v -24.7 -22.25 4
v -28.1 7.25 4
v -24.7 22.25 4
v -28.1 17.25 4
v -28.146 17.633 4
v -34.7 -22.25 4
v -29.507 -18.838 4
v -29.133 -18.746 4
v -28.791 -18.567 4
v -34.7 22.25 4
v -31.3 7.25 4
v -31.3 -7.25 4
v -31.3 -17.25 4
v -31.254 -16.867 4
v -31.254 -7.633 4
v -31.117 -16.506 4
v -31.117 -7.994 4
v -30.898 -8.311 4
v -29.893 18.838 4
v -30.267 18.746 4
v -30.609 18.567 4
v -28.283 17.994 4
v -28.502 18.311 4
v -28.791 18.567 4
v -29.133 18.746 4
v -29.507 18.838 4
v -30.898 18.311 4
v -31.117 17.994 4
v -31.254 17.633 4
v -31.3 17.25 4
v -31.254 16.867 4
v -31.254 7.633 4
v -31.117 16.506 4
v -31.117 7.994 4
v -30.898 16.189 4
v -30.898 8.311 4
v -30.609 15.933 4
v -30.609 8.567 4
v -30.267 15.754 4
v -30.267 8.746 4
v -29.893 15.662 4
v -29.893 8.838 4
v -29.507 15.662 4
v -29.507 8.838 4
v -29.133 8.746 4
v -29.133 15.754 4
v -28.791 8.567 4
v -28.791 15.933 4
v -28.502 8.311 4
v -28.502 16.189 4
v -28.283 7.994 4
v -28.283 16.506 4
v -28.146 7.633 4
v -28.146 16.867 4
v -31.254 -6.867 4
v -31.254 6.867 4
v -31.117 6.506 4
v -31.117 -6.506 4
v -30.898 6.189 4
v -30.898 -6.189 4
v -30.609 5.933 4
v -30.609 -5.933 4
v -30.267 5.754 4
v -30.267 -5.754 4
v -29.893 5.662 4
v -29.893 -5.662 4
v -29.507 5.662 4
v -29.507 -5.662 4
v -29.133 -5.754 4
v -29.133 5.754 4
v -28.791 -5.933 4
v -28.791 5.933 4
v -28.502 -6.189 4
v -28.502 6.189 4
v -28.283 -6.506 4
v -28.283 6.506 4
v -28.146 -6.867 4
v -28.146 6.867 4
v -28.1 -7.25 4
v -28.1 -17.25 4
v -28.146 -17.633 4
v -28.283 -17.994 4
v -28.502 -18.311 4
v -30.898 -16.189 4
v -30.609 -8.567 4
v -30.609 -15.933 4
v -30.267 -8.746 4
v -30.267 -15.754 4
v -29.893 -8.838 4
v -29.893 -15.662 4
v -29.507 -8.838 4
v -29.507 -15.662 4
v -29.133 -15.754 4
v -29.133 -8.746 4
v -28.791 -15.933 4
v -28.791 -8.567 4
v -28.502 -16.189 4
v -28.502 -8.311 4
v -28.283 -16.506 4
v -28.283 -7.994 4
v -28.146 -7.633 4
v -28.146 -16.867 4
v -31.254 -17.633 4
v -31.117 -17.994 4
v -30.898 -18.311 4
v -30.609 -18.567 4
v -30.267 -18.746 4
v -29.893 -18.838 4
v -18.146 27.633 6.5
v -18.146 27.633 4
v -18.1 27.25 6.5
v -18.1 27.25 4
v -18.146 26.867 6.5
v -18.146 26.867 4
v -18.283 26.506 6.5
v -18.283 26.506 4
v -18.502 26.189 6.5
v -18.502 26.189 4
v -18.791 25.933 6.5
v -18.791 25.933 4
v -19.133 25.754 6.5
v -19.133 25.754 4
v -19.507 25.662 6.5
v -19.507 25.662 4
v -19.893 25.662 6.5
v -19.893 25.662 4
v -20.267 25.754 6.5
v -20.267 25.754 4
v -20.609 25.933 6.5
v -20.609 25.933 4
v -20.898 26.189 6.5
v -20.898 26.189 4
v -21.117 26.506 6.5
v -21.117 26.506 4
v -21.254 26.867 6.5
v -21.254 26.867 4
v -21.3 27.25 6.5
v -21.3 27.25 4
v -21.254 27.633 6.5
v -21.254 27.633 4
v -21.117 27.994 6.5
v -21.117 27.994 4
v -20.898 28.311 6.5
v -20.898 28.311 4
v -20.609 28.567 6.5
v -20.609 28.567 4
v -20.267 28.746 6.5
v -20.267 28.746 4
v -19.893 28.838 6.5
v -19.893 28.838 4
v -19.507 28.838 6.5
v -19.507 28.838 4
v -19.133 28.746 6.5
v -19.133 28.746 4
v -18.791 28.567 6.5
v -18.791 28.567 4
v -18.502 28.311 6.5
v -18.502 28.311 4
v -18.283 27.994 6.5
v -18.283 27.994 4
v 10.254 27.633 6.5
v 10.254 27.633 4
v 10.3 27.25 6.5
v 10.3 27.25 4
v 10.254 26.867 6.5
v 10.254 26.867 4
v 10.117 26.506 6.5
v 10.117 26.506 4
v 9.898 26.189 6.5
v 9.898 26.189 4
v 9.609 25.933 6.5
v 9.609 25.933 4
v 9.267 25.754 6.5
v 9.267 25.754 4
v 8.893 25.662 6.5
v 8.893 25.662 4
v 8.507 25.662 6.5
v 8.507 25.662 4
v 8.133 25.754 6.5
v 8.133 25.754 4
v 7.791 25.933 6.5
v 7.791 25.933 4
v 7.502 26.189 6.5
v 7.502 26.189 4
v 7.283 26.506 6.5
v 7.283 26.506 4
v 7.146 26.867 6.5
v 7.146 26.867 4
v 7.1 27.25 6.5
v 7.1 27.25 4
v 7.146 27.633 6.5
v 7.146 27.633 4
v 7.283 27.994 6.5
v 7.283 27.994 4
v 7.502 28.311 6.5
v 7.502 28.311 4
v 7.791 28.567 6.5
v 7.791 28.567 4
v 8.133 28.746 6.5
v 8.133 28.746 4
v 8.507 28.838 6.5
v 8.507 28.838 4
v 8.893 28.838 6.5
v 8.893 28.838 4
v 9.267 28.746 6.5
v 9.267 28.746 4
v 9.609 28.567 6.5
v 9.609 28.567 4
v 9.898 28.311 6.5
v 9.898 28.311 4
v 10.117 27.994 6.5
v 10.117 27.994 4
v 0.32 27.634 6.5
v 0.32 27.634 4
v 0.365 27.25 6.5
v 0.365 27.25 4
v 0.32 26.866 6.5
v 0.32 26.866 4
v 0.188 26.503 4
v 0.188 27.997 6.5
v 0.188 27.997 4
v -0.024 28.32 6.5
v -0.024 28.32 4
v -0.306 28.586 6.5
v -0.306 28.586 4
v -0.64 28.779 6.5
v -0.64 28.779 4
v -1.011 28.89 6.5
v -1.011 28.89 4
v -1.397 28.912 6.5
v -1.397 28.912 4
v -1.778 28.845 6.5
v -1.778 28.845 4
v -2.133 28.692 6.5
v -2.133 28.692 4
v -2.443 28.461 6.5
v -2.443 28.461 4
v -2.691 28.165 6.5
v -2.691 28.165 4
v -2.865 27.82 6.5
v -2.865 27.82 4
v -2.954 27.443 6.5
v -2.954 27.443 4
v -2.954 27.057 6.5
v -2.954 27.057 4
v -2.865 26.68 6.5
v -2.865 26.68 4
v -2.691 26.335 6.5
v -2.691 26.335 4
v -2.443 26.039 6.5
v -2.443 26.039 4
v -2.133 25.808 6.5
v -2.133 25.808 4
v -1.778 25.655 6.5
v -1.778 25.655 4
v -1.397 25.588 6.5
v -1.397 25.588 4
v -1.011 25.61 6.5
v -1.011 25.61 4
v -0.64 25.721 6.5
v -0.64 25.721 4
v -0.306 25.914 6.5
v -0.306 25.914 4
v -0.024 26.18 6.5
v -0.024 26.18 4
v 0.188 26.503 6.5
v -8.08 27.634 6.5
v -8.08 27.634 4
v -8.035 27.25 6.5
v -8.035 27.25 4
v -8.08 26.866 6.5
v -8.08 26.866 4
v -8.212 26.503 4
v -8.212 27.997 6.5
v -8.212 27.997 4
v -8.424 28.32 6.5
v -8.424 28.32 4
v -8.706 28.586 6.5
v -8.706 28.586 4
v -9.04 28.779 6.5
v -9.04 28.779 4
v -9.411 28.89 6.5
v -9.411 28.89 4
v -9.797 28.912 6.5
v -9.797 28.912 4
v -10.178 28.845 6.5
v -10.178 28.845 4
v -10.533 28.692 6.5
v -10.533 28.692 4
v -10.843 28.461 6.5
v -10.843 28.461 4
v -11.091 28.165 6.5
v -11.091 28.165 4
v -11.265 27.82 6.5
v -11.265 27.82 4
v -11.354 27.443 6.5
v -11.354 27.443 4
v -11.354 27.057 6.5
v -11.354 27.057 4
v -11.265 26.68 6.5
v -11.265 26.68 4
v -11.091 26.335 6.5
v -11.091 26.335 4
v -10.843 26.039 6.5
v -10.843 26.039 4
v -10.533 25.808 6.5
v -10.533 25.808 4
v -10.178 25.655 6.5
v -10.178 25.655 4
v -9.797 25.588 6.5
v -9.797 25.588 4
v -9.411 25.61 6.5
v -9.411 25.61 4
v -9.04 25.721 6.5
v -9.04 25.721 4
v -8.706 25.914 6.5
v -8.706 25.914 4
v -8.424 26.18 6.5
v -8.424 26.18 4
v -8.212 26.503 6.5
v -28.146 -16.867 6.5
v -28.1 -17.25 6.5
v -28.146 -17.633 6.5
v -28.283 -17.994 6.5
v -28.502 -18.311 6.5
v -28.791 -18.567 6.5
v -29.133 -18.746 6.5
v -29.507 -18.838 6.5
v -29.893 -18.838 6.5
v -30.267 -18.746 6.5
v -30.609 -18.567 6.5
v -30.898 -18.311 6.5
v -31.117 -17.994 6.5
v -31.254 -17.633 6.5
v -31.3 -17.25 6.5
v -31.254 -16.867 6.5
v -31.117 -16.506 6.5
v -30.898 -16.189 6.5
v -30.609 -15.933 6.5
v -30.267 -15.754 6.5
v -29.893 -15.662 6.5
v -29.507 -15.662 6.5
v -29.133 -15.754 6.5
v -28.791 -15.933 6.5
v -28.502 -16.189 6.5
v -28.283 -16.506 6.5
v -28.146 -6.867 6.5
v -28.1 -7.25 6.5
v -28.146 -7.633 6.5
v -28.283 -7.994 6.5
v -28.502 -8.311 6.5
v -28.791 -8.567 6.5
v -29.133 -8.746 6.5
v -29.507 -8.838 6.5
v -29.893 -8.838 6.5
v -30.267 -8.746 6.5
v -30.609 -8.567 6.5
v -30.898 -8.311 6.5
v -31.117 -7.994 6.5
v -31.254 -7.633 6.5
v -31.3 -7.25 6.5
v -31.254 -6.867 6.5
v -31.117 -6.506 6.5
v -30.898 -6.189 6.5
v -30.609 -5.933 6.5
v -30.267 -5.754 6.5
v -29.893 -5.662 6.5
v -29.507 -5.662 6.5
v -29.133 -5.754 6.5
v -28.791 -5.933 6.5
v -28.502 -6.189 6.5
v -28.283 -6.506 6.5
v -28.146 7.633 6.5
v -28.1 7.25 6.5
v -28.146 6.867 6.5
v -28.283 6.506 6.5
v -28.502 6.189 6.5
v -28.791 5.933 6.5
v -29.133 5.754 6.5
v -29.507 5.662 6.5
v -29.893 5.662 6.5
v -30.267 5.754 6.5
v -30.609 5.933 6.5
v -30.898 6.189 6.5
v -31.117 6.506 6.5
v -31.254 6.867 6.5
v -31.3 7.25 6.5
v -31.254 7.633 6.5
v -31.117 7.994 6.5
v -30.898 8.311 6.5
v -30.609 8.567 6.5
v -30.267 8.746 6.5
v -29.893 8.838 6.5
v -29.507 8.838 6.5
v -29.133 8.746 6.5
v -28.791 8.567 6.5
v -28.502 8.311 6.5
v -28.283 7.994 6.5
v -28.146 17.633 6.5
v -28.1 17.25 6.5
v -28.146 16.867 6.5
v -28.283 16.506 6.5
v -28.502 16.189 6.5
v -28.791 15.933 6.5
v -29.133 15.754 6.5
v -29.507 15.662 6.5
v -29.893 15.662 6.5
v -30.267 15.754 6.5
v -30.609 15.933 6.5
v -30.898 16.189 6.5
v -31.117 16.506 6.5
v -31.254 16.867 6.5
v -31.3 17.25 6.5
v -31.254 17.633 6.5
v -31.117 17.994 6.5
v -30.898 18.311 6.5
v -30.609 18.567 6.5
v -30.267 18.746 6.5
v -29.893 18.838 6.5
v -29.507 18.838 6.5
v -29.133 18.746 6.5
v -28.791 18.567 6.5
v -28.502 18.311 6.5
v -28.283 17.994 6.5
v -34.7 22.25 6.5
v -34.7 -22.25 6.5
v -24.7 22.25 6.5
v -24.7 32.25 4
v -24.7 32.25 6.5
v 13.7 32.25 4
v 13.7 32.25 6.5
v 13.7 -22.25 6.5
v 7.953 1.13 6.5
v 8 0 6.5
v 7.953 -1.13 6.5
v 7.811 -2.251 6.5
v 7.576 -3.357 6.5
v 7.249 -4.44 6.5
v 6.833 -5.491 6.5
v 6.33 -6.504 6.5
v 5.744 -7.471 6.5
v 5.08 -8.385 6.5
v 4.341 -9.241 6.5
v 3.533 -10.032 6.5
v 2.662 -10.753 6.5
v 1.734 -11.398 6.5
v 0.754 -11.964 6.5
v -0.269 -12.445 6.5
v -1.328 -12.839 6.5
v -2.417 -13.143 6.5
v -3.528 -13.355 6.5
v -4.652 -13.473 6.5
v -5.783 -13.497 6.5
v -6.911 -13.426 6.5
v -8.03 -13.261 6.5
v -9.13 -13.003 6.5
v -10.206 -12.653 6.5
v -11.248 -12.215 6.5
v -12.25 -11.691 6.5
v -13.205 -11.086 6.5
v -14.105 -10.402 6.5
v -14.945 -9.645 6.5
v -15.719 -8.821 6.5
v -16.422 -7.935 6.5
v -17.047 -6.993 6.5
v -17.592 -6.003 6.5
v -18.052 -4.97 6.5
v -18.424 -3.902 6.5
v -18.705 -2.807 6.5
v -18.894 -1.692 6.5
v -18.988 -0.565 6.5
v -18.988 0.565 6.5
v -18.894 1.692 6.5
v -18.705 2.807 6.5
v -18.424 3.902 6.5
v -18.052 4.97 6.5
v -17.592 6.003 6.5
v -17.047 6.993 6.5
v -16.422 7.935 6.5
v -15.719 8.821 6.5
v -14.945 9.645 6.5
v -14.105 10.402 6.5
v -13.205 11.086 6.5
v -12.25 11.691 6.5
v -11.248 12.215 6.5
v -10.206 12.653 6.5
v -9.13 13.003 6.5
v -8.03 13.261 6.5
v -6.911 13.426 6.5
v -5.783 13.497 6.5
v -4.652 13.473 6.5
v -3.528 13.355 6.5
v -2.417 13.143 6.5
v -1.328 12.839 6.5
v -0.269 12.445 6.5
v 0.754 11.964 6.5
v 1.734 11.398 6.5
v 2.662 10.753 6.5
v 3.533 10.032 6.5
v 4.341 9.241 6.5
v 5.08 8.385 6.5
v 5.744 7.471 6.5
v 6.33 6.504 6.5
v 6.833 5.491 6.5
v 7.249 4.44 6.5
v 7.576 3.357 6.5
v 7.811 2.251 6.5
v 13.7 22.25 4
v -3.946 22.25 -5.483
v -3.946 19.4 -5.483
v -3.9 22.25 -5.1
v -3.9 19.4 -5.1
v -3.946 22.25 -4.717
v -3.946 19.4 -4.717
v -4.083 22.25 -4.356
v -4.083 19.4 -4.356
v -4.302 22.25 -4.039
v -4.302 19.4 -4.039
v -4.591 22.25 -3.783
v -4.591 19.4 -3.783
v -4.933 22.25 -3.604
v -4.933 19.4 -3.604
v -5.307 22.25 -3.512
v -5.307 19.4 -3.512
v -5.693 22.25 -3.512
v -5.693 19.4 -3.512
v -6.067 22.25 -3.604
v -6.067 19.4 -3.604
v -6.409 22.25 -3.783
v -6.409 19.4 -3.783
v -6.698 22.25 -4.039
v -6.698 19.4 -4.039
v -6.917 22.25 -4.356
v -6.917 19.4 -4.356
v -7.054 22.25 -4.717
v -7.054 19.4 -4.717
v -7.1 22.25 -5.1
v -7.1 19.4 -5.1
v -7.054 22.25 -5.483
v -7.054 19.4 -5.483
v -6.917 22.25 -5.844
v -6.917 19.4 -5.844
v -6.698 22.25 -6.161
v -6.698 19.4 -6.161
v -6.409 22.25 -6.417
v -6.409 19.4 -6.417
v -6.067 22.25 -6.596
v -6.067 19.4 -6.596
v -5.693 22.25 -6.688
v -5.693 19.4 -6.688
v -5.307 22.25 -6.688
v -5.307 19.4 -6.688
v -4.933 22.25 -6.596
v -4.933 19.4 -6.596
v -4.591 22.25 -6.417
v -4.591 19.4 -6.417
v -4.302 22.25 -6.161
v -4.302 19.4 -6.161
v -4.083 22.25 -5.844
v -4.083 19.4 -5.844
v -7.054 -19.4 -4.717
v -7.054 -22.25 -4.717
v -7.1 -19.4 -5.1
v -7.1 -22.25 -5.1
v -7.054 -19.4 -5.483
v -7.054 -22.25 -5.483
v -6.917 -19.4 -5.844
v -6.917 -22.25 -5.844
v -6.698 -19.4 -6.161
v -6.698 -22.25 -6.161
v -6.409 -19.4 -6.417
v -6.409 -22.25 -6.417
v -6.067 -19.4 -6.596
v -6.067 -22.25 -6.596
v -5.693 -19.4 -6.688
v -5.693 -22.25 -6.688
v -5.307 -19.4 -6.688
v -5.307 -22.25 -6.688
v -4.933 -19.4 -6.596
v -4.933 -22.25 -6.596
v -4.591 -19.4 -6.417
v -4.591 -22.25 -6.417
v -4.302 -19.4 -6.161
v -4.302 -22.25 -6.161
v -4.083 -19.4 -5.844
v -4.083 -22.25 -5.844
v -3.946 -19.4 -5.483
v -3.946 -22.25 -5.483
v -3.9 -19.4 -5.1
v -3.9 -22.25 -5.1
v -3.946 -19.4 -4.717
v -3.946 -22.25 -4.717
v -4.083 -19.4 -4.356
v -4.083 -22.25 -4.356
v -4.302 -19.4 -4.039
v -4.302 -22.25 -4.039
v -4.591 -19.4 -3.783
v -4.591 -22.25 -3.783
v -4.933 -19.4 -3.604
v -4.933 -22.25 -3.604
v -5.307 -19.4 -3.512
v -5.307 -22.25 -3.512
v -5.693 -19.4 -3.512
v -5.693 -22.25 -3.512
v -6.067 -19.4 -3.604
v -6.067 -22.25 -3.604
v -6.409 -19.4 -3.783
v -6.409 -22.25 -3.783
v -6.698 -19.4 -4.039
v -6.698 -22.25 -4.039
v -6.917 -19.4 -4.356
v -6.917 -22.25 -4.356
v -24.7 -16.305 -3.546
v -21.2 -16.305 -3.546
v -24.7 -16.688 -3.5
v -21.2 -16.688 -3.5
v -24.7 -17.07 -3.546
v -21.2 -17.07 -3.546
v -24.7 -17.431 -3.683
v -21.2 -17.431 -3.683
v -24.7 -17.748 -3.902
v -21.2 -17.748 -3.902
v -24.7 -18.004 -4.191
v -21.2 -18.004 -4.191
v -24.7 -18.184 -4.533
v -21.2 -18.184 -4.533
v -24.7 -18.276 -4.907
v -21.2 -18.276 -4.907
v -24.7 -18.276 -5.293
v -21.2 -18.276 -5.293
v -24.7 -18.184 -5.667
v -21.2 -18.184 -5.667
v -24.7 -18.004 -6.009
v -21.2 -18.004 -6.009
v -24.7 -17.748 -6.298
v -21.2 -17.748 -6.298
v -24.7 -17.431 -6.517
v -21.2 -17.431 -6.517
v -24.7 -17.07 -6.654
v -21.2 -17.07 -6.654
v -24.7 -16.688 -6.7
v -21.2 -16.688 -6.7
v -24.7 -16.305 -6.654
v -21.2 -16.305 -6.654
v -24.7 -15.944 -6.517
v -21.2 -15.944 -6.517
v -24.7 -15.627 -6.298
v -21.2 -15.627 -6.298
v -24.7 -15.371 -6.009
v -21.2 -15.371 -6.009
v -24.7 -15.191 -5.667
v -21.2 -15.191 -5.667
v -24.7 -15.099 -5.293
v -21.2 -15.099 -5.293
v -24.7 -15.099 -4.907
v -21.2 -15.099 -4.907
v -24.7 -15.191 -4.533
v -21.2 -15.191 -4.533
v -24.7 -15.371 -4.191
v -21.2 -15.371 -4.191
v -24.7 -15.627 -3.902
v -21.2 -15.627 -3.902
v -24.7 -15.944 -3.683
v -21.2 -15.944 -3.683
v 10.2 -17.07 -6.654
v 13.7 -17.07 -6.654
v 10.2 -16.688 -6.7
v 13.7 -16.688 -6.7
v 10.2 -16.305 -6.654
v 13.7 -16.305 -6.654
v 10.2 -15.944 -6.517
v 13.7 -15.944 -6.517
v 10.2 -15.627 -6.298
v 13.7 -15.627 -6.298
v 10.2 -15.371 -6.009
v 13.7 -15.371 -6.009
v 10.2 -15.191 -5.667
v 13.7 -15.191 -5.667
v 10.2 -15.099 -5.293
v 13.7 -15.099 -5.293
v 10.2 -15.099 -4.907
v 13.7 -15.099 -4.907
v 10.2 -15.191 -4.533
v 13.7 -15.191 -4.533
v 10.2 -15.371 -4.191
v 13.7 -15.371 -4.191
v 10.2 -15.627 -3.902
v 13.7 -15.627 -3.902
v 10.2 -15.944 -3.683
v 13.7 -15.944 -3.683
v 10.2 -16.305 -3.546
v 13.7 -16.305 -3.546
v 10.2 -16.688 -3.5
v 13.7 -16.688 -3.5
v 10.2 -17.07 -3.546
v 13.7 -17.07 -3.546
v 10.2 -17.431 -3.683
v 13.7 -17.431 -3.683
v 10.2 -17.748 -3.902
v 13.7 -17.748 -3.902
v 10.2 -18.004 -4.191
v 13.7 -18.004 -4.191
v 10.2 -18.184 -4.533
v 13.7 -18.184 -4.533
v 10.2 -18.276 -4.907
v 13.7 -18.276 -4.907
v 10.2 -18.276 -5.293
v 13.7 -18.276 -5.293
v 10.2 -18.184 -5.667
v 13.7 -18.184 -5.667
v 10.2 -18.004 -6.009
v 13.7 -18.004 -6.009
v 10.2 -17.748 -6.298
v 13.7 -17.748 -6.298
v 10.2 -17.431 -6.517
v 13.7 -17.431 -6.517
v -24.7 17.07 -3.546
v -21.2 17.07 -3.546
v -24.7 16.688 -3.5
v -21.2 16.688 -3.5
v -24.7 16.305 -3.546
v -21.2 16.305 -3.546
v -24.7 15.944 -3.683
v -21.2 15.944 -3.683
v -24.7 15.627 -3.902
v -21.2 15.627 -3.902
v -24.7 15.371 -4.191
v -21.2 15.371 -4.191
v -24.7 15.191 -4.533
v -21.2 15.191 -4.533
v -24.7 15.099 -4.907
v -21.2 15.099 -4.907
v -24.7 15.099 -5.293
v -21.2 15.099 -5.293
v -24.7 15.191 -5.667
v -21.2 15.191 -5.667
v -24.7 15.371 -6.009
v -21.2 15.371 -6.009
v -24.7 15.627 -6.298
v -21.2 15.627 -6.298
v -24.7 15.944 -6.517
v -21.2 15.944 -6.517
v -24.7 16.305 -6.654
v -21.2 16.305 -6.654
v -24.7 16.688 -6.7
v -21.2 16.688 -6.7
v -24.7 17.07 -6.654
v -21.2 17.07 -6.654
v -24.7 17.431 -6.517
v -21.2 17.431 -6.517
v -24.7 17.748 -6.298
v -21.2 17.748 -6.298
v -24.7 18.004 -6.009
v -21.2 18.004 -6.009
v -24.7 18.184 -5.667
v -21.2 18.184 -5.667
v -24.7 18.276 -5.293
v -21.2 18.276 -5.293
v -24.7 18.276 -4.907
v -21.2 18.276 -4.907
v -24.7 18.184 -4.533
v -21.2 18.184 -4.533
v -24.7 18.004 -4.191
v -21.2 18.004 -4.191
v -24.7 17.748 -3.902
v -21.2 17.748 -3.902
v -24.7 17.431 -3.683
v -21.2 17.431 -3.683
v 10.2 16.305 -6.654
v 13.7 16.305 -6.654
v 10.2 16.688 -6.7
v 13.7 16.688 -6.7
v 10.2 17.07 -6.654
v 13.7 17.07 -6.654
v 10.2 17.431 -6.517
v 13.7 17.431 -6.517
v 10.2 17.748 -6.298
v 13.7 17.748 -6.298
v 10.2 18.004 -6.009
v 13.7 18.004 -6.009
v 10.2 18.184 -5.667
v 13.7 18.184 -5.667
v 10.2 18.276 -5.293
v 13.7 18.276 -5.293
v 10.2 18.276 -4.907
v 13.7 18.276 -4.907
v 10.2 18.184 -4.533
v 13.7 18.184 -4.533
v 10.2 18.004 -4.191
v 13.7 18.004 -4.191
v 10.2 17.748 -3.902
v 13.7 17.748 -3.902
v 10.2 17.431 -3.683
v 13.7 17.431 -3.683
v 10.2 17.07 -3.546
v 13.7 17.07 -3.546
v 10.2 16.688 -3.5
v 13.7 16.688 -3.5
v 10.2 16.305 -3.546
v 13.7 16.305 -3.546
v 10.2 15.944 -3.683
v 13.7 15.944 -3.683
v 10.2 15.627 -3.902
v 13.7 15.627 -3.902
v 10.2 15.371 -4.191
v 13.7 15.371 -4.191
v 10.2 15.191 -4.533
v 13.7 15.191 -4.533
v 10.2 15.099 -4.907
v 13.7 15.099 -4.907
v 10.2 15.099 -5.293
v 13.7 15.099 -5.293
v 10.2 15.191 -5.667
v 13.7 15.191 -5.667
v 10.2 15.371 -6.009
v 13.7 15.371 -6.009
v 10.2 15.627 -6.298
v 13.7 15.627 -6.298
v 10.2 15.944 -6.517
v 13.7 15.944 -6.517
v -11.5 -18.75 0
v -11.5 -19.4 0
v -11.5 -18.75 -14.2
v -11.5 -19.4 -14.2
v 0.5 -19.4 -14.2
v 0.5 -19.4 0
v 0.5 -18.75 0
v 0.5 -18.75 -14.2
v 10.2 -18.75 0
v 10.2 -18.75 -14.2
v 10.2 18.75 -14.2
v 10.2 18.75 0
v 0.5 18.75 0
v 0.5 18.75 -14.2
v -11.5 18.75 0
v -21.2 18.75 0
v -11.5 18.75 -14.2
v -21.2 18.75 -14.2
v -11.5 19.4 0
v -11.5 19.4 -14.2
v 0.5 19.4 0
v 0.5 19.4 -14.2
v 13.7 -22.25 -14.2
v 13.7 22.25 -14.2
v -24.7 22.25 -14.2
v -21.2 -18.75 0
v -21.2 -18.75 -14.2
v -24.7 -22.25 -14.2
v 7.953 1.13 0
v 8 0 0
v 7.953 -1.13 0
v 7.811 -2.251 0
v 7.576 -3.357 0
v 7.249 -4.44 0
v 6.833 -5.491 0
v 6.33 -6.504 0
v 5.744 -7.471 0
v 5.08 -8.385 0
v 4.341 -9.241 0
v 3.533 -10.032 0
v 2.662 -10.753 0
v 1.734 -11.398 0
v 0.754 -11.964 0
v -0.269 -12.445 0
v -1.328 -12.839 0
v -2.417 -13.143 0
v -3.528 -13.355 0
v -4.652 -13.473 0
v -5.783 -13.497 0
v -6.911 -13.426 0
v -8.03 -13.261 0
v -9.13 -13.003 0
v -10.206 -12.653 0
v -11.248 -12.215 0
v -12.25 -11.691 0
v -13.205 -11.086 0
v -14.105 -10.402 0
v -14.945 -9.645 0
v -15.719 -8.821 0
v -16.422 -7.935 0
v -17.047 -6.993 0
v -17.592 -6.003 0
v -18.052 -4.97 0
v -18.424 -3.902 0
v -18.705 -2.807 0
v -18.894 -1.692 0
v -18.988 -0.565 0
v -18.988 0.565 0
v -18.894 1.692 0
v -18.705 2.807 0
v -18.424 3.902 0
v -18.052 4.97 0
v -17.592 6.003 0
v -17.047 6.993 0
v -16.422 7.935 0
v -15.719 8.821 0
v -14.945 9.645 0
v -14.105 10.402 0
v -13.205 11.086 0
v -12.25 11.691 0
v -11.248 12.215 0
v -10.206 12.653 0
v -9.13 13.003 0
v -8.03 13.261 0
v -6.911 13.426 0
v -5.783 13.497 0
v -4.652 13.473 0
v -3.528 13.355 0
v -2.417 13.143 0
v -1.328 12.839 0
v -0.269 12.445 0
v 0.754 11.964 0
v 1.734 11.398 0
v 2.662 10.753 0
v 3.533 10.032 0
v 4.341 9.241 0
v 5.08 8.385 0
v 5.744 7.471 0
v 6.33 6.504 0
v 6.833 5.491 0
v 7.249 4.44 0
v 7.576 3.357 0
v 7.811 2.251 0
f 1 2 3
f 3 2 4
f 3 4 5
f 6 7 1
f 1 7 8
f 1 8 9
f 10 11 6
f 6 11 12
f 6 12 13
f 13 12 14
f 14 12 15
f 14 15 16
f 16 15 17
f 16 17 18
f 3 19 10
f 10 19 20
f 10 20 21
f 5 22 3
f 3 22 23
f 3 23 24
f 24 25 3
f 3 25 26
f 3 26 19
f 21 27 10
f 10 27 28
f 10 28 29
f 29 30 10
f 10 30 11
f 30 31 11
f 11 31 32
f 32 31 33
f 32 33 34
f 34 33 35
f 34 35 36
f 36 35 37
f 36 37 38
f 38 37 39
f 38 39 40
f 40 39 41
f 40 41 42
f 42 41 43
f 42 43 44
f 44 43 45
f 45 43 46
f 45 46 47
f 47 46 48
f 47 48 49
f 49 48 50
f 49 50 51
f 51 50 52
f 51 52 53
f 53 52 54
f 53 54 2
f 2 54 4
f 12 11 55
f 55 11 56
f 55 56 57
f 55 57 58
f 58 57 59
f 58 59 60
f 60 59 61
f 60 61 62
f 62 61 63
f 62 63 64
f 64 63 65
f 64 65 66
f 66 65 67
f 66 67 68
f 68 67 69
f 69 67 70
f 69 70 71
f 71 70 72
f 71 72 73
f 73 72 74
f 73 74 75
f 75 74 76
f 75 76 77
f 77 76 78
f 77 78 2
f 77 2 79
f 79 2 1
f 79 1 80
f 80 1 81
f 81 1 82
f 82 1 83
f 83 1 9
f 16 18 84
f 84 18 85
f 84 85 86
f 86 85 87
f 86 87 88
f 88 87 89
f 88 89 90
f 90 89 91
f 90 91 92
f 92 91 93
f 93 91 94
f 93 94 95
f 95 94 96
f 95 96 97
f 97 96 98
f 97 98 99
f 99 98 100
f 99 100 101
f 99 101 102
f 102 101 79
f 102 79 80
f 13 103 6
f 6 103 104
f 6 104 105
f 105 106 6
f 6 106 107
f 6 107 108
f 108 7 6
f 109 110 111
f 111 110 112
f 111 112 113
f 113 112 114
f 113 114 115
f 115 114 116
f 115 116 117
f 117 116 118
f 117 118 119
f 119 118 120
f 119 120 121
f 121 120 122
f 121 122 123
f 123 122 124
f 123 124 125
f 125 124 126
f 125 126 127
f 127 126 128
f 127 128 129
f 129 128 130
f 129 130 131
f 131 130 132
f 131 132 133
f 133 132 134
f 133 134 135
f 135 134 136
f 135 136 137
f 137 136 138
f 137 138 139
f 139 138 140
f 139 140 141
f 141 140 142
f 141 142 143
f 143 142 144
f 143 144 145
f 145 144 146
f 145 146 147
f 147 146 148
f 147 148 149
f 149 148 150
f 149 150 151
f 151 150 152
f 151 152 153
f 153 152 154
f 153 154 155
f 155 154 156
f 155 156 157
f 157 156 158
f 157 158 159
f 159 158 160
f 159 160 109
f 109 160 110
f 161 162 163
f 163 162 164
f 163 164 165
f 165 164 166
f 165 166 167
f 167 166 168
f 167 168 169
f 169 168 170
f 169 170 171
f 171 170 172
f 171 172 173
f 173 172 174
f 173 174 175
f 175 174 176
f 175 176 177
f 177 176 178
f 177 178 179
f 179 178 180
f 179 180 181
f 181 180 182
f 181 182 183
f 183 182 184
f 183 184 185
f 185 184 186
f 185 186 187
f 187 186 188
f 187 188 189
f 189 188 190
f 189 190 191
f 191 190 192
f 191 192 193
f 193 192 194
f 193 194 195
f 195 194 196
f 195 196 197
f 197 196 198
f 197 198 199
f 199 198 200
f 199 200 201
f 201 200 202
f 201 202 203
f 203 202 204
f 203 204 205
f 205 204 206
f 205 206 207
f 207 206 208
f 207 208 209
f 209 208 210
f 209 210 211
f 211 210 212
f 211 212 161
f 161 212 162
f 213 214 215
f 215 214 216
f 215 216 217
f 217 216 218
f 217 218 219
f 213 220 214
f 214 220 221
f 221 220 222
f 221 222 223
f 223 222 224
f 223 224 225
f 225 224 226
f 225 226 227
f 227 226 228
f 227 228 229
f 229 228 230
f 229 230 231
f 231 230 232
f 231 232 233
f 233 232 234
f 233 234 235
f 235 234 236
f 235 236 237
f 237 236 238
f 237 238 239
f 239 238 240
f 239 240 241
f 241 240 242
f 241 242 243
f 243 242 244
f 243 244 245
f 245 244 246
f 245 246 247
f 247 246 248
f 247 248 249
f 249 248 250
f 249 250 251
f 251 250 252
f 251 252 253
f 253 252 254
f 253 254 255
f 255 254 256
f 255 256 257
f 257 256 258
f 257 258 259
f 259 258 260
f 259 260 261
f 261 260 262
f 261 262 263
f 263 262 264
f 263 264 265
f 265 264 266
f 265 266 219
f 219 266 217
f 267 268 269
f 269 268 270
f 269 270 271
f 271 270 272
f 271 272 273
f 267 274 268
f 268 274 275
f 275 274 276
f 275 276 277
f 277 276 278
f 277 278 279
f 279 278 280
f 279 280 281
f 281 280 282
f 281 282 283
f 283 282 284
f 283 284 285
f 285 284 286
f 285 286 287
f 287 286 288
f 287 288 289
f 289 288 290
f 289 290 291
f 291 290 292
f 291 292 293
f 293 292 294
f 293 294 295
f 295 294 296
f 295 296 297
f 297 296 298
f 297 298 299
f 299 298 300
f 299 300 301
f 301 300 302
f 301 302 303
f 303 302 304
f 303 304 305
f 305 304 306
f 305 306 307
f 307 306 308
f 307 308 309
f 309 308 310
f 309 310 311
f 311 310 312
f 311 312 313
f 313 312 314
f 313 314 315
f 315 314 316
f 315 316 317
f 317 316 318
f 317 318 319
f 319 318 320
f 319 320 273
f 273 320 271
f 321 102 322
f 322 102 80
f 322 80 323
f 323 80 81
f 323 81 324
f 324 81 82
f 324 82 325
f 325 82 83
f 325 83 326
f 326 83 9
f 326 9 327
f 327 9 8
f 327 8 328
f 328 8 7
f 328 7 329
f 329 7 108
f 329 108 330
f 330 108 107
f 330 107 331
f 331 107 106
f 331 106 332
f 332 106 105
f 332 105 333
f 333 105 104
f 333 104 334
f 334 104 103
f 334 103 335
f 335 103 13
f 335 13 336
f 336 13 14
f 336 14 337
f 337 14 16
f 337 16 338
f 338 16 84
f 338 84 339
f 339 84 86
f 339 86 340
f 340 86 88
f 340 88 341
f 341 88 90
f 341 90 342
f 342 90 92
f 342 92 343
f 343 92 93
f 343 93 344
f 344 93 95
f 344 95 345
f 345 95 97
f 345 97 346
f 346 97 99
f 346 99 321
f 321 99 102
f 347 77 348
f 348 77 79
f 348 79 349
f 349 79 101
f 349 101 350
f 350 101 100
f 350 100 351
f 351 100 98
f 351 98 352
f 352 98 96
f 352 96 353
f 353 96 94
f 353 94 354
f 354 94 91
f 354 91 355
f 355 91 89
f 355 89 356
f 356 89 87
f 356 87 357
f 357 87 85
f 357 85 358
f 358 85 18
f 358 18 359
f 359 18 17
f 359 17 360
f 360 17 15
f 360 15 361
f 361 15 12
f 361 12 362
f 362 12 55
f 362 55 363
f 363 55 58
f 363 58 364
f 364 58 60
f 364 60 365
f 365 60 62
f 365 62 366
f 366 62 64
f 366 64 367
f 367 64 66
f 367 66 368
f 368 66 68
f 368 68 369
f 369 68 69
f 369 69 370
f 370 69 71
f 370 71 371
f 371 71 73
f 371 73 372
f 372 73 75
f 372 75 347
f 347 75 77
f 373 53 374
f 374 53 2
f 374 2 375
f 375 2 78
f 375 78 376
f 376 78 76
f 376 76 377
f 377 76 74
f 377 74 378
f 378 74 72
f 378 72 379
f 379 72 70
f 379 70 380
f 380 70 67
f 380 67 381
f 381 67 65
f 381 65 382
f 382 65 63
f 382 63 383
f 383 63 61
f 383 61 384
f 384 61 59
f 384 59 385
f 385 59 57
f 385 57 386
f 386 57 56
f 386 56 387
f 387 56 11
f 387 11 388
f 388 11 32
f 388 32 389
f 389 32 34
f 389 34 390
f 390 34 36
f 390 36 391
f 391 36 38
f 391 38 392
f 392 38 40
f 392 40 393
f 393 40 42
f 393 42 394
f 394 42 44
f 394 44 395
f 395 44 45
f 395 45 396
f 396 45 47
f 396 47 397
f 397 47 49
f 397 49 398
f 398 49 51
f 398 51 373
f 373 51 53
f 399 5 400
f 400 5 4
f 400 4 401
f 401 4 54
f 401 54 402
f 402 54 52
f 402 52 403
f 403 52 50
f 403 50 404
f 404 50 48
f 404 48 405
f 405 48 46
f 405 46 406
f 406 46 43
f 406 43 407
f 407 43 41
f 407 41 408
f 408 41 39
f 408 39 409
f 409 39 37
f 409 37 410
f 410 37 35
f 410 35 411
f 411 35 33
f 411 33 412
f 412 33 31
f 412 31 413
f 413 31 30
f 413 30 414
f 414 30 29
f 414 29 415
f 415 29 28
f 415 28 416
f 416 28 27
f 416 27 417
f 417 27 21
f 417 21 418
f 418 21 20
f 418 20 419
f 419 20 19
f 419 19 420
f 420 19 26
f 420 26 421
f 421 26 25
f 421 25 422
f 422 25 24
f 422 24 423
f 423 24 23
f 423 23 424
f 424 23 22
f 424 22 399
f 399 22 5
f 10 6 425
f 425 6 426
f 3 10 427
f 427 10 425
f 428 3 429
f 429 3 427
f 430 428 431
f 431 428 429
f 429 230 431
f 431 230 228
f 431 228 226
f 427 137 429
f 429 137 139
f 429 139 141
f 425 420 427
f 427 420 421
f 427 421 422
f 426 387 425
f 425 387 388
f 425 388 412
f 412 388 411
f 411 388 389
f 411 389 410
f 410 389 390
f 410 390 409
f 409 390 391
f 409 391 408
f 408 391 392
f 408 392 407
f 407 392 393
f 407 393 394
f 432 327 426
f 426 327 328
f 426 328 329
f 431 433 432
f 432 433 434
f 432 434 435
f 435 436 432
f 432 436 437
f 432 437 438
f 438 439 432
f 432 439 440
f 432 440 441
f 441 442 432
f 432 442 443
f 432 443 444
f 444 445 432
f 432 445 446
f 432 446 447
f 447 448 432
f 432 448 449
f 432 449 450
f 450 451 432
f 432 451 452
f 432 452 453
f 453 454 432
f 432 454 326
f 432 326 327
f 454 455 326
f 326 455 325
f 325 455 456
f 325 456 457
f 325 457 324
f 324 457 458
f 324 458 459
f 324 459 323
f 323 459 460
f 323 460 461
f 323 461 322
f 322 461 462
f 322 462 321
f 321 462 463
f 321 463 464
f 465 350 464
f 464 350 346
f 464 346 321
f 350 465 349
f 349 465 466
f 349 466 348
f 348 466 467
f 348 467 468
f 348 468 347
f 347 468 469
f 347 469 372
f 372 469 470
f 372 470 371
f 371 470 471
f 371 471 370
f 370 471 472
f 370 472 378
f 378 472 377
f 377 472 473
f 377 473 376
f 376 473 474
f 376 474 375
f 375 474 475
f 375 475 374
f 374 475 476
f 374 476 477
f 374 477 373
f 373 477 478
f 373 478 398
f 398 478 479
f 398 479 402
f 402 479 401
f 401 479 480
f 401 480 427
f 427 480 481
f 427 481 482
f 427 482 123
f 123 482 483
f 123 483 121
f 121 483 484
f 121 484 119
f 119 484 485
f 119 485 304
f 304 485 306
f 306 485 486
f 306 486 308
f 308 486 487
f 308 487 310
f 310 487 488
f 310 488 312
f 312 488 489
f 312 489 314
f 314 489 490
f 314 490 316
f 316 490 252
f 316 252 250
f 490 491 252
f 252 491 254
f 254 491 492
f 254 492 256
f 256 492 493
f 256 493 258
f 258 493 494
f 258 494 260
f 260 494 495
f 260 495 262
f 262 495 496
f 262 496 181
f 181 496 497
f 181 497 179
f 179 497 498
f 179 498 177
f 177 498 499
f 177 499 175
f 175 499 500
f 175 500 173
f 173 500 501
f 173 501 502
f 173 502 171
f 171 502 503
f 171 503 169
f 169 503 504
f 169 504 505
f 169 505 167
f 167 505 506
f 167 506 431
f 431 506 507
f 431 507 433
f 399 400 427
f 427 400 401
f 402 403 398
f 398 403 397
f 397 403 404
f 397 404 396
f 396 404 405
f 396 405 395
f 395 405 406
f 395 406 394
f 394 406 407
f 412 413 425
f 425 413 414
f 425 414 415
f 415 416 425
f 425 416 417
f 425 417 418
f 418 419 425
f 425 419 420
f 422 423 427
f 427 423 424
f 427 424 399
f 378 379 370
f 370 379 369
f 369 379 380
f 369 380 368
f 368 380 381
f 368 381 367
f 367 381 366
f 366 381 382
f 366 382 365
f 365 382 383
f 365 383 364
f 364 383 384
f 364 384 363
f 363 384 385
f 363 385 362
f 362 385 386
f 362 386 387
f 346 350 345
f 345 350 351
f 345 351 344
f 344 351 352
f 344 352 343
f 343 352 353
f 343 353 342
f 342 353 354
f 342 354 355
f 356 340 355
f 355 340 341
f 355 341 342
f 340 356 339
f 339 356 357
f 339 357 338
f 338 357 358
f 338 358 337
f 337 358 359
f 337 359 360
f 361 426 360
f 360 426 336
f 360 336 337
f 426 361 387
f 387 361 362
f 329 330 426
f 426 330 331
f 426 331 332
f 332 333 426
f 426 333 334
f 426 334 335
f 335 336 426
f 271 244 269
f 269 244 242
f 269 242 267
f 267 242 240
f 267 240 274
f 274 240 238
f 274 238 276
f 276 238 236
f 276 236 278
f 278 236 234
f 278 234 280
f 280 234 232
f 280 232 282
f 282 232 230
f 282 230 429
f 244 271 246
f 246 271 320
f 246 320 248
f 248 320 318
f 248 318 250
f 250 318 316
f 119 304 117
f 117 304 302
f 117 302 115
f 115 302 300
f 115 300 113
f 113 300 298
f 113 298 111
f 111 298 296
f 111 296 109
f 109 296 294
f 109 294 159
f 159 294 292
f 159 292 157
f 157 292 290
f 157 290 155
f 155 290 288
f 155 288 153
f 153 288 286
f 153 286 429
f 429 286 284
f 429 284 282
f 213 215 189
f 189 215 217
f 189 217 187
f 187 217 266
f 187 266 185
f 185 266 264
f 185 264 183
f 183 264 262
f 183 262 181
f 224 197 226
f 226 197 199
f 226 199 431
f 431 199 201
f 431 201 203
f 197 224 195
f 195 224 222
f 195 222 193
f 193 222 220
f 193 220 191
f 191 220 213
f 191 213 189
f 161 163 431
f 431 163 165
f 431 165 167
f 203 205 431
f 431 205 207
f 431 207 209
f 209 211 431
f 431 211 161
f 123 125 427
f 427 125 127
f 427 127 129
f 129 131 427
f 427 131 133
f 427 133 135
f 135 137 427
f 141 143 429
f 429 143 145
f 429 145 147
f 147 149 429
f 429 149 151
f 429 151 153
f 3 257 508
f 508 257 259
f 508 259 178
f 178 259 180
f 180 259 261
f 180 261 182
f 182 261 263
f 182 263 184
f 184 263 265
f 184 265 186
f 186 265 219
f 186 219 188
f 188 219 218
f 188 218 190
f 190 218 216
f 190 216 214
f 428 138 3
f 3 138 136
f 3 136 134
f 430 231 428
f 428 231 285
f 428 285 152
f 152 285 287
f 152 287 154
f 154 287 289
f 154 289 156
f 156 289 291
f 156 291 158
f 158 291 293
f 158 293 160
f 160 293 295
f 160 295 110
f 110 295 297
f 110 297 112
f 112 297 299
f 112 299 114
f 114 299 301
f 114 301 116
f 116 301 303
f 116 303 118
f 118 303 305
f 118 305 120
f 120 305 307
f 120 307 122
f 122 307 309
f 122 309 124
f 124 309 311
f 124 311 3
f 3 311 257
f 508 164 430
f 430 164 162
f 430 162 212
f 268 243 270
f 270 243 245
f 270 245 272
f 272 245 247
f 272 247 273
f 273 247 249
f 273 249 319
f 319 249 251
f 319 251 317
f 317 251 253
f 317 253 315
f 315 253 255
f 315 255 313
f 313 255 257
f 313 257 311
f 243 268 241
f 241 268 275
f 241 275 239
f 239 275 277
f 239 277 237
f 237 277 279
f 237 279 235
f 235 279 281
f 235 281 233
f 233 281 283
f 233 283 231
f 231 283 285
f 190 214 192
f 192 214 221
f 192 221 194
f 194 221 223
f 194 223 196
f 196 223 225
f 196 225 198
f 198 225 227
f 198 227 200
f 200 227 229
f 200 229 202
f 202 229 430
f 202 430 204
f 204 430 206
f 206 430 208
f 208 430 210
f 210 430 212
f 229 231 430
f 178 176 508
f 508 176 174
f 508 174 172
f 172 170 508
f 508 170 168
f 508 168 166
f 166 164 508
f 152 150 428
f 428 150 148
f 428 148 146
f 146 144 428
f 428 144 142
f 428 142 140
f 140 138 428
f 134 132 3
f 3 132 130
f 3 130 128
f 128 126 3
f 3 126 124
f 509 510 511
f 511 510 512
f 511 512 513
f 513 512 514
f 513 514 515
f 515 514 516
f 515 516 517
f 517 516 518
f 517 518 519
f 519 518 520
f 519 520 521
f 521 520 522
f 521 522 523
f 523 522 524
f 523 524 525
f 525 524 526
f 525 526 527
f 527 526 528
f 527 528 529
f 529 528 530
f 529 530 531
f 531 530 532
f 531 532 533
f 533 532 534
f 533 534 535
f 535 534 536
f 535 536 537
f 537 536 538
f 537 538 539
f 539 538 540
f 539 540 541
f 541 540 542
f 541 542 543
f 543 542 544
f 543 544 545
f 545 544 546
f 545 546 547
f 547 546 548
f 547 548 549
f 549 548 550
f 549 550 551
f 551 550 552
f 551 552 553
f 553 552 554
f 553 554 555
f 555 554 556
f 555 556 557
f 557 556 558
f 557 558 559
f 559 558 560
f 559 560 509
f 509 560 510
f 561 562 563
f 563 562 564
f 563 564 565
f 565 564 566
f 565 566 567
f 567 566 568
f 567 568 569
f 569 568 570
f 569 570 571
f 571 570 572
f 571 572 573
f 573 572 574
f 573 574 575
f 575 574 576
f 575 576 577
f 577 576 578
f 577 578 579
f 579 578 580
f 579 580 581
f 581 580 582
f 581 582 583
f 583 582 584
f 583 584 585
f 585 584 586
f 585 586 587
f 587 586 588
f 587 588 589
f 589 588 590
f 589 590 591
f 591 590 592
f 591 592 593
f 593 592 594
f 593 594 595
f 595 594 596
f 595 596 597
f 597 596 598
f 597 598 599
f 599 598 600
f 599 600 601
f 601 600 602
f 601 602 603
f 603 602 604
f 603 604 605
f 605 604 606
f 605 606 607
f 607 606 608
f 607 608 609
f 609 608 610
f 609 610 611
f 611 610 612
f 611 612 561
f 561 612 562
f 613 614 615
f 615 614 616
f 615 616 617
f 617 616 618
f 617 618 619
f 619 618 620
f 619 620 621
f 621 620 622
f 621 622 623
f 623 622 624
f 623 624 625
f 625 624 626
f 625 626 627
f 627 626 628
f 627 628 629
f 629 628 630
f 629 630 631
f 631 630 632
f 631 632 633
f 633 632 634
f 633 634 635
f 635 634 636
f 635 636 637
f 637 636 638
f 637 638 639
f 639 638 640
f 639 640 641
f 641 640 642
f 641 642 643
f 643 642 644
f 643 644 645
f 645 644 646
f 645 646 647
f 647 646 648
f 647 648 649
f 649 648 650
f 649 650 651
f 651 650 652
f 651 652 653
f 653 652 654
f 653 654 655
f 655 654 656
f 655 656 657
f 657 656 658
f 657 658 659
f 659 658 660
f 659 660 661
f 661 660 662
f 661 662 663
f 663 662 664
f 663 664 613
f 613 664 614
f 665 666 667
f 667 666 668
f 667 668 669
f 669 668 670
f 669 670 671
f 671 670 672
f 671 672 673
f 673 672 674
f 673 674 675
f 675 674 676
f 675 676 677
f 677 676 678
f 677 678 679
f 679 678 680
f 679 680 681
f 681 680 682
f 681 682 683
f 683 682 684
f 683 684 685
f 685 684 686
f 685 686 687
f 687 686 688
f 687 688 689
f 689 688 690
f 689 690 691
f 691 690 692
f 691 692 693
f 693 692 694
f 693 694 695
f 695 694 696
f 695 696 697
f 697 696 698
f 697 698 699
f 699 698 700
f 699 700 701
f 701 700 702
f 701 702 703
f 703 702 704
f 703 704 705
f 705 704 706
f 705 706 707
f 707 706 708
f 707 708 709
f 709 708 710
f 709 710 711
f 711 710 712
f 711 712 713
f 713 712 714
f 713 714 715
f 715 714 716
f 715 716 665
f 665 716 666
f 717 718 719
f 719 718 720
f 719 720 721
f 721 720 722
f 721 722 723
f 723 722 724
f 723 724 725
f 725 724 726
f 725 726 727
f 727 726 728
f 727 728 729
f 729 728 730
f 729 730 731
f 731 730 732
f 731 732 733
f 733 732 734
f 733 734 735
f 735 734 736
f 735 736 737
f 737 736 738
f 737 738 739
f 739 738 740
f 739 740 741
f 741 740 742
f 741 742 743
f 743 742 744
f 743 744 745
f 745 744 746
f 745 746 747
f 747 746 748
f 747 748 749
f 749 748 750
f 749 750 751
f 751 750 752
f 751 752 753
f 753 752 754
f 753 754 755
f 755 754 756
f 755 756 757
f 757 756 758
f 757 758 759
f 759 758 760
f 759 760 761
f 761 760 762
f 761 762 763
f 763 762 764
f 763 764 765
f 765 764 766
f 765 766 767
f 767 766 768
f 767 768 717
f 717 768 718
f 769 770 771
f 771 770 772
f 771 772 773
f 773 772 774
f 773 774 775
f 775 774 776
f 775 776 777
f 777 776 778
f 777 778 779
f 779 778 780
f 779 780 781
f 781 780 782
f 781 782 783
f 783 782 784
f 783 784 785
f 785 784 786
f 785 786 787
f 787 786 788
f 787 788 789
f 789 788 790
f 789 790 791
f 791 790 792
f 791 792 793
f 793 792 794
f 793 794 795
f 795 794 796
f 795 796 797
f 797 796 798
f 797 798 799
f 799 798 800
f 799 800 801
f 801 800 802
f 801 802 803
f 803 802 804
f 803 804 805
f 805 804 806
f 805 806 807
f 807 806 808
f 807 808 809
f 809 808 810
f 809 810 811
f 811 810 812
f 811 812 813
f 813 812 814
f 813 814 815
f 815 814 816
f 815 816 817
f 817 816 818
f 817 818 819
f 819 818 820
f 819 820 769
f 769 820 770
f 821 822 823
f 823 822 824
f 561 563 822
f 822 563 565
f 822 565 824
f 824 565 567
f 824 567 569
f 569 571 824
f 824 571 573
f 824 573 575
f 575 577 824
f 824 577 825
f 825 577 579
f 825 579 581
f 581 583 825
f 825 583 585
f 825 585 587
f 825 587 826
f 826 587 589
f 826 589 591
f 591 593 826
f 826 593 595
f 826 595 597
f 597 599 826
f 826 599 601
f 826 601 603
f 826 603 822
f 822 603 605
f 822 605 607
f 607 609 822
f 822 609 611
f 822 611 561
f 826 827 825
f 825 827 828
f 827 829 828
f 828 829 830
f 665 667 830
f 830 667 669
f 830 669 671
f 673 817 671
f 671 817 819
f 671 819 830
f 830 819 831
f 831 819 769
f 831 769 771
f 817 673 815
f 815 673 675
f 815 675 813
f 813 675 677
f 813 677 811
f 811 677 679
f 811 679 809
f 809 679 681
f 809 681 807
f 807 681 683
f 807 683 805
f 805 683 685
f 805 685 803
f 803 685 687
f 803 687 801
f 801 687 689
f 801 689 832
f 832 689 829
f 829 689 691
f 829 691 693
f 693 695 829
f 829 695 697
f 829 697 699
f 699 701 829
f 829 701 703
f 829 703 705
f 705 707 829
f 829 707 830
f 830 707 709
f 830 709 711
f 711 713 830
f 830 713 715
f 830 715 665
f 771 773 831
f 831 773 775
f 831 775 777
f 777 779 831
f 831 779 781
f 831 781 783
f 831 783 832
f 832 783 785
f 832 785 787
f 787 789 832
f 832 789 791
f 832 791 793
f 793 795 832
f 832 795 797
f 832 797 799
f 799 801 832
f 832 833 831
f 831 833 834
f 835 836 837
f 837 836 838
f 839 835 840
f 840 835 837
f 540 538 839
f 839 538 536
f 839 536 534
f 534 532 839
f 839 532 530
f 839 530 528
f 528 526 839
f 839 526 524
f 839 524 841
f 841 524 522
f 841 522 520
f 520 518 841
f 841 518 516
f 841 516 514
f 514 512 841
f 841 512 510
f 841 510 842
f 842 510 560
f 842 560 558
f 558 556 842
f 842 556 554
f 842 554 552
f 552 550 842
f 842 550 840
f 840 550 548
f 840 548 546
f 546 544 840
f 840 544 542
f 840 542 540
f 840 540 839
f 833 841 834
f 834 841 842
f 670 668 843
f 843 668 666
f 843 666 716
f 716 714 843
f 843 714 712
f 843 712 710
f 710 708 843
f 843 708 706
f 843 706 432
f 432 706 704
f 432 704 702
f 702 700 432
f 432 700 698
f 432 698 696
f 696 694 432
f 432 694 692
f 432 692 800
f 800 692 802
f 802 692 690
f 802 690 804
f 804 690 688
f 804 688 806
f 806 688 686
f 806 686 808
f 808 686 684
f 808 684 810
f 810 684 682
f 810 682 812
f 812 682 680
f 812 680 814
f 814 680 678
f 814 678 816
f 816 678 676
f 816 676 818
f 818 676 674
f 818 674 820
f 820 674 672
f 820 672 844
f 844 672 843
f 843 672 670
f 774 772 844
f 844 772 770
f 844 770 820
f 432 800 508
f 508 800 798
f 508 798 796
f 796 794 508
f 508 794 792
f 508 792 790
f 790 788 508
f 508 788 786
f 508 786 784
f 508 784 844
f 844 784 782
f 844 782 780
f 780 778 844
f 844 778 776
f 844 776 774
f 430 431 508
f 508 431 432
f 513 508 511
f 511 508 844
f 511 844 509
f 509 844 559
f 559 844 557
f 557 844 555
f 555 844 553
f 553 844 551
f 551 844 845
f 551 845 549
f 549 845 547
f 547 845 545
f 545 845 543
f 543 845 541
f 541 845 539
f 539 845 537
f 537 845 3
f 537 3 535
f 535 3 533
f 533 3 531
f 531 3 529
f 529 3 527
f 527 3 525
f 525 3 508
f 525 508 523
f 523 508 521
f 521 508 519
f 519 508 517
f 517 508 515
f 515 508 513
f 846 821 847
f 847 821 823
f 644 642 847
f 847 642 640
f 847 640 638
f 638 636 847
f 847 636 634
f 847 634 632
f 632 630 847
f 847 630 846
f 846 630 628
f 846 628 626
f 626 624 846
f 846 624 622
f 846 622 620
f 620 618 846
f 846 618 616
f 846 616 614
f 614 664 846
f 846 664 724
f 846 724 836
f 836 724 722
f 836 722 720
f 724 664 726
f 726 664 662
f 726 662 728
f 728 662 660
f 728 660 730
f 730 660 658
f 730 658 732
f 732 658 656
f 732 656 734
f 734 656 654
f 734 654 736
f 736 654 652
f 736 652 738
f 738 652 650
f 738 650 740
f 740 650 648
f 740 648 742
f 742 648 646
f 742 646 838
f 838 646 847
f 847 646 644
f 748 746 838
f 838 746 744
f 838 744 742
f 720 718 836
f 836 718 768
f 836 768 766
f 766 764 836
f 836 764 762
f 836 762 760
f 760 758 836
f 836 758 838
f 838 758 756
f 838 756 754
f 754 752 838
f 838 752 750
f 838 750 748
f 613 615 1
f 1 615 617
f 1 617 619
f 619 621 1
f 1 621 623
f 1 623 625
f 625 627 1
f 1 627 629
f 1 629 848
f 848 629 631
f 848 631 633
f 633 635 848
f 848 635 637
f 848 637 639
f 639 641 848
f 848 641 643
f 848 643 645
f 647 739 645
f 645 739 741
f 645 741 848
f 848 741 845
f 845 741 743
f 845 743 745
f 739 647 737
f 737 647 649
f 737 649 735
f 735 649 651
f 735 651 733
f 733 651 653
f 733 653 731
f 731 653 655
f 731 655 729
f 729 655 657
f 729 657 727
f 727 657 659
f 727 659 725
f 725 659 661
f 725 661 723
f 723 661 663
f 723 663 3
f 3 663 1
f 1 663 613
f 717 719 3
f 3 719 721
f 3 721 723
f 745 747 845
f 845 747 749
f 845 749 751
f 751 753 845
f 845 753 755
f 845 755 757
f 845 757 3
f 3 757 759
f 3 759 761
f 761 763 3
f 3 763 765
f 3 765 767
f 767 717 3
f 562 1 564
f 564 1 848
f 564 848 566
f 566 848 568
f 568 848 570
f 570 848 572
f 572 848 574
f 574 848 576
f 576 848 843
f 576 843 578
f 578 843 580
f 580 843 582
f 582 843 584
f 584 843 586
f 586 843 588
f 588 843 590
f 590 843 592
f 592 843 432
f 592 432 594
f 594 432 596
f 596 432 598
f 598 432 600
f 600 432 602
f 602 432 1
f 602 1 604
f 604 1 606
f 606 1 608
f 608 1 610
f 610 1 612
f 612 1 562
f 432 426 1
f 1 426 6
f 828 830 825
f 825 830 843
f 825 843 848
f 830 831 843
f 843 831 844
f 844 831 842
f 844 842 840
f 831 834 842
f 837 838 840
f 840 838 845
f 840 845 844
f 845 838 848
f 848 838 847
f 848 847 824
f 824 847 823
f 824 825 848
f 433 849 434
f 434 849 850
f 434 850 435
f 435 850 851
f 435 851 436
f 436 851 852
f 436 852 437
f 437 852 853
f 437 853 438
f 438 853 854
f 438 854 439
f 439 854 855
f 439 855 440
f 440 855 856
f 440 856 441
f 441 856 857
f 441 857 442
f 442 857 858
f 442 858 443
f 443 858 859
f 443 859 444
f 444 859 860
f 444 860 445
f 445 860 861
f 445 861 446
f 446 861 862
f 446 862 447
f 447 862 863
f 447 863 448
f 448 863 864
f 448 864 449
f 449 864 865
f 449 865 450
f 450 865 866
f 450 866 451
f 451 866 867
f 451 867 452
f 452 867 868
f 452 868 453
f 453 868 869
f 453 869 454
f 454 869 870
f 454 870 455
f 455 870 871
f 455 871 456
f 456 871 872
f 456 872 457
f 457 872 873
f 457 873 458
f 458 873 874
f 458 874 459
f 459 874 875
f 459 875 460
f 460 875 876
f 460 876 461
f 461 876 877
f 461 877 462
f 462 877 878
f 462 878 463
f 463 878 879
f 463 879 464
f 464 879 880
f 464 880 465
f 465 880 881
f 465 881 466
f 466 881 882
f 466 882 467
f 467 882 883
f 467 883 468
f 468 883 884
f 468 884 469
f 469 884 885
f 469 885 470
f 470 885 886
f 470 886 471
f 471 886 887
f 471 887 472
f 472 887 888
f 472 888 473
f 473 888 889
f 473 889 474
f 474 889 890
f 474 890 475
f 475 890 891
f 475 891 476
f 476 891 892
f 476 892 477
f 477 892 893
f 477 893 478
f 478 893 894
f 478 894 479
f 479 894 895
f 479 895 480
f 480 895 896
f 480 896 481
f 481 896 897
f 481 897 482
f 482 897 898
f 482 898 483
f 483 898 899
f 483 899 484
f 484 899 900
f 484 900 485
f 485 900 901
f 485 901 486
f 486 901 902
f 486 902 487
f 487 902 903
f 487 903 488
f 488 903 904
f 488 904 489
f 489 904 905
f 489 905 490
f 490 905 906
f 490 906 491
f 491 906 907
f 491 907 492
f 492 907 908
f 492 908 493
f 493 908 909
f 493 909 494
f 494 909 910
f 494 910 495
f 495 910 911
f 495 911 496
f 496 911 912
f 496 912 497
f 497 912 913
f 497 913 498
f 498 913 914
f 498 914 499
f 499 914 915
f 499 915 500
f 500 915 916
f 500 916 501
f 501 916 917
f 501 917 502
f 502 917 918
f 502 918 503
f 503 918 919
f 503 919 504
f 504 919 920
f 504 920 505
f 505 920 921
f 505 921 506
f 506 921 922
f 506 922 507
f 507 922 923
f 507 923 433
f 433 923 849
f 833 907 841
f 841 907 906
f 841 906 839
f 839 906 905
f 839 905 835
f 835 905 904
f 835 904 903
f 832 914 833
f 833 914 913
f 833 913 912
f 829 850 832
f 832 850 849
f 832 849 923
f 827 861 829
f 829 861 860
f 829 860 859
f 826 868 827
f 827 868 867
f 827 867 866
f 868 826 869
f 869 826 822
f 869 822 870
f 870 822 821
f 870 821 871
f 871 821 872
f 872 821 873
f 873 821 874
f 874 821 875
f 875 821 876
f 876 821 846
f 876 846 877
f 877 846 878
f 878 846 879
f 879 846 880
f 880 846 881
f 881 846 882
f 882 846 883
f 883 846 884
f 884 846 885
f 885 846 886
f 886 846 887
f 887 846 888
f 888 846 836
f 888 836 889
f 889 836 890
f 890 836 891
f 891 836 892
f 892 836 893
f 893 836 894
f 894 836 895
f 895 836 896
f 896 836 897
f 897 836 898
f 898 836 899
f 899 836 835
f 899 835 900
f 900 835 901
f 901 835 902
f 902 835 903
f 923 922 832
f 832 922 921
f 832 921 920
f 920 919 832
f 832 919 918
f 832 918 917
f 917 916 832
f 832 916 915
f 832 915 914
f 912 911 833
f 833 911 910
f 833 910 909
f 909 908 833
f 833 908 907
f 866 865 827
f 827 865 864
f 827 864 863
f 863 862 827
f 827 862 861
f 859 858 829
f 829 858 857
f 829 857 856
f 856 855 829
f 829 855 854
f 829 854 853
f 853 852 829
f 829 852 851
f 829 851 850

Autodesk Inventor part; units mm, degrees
ref_plane "YZ Plane" through (0, 0, 0) normal (1, 0, 0) x (0, 1, 0)
ref_plane "XZ Plane" through (0, 0, 0) normal (0, 1, 0) x (-1, 0, 0)
sketch "Sketch1" plane through (0, 0, 0) normal (0, 0, 1) x (1, 0, 0)
  line L0 (-11, 18.9) -> (-11, 18.25) projected
  line L1 (-11, 18.25) -> (-20.7, 18.25) projected
  line L2 (-20.7, 18.25) -> (-20.7, -18.25) projected
  line L3 (-11, -18.25) -> (-20.7, -18.25) projected
  line L4 (-11, -18.25) -> (-11, -18.9) projected
  line L5 (0, -18.9) -> (-11, -18.9) projected
  line L6 (0, -18.25) -> (0, -18.9) projected
  line L7 (9.7, -18.25) -> (0, -18.25) projected
  line L8 (9.7, 18.25) -> (9.7, -18.25) projected
  line L9 (9.7, 18.25) -> (0, 18.25) projected
  line L10 (0, 18.9) -> (0, 18.25) projected
  line L11 (0, 18.9) -> (-11, 18.9) projected
  circle A0 centre (-5.5, 0) radius 11.5 projected
  circle A1 centre (-5.5, 0) radius 13.5
  point P0 (0, 0)
  dimension "d0" = 2
extrude "Extrusion1" add sketch "Sketch1" along normal blind 4 contours L11 L10 L9 L8 L7 L6 L5 L4 L3 L2 L1 L0
sketch "Sketch2" plane through (0, 0, 4) normal (0, 0, 1) x (1, 0, 0)
  line L0 (-11, 18.9) -> (-11, 18.25) projected
  line L1 (-11, 18.25) -> (-20.7, 18.25) projected
  line L2 (-20.7, 18.25) -> (-20.7, -18.25) projected
  line L3 (-20.7, -18.25) -> (-11, -18.25) projected
  line L4 (-11, -18.25) -> (-11, -18.9) projected
  line L5 (-11, -18.9) -> (0, -18.9) projected
  line L6 (0, -18.9) -> (0, -18.25) projected
  line L7 (0, -18.25) -> (9.7, -18.25) projected
  line L8 (9.7, -18.25) -> (9.7, 18.25) projected
  line L9 (9.7, 18.25) -> (0, 18.25) projected
  line L10 (0, 18.25) -> (0, 18.9) projected
  line L11 (0, 18.9) -> (-11, 18.9) projected
  circle A0 centre (-5.5, 0) radius 13.5 projected
  line L12 (13.7, 22.25) -> (13.7, -22.25)
  line L13 (13.7, -22.25) -> (6, -22.25)
  line L14 (-17, -22.25) -> (-24.7, -22.25)
  line L15 (-24.7, -22.25) -> (-24.7, 22.25)
  line L16 (-24.7, 22.25) -> (-17, 22.25)
  line L17 (6, 22.25) -> (13.7, 22.25)
  line L18 (10.2, 18.75) -> (10.2, -18.75)
  line L19 (10.2, -18.75) -> (0.5, -18.75)
  line L20 (0.5, -18.75) -> (0.5, -19.4)
  line L21 (0.5, -19.4) -> (-11.5, -19.4)
  line L22 (-11.5, -19.4) -> (-11.5, -18.75)
  line L23 (-11.5, -18.75) -> (-21.2, -18.75)
  line L24 (-21.2, -18.75) -> (-21.2, 18.75)
  line L25 (-21.2, 18.75) -> (-11.5, 18.75)
  line L26 (-11.5, 18.75) -> (-11.5, 19.4)
  line L27 (-11.5, 19.4) -> (0.5, 19.4)
  line L28 (0.5, 19.4) -> (0.5, 18.75)
  line L29 (0.5, 18.75) -> (10.2, 18.75)
  line L30 (-17, -22.25) -> (6, -22.25)
  line L31 (6, 22.25) -> (-17, 22.25)
  point P0 (0, 0)
  dimension "d3" = 4
  dimension "d4" = 0.5
ref_plane "Work Plane1" through (-21.9731, -18.5883, -14.2) normal (0, 0, -1) x (0, 1, 0)
extrude "Extrusion2" add sketch "Sketch2" against normal up to surface (18.2 mm away) contours L12 L13 L30 L14 L15 L16 L31 L17
extrude "Extrusion3" add sketch "Sketch2" against normal blind 4 contours L18 L19 L20 L21 L22 L23 L24 L25 L26 L27 L28 L29
sketch "Sketch3" plane through (-24.7, -22.25, 4) normal (-1, 0, 0) x (0, 0, 1)
  line L0 (0, 44.5) -> (-18.2, 44.5) construction
  line L1 (-18.2, 44.5) -> (0, 0) construction
  line L2 (0, 0) -> (-18.2, 0) construction
  line L3 (0, 44.5) -> (0, 0) construction
  line L4 (-18.2, 0) -> (0, 44.5) construction
  line L5 (0, 44.5) -> (-9.1, 22.25) construction
  line L6 (0, 22.25) -> (-18.2, 22.25) construction
  line L7 (-18.2, 3.5) -> (-18.2, 41) construction
  line L8 (-18.2, 22.25) -> (0, 44.5) construction
  line L9 (0, 22.25) -> (-18.2, 44.5) construction
  line L10 (-9.1, 33.375) -> (0, 33.375) construction
  line L11 (0, 33.375) -> (-18.2, 44.5) construction
  line L12 (0, 44.5) -> (-18.2, 33.375) construction
  line L13 (-18.2, 44.5) -> (-18.2, 0) construction
  circle A0 centre (-9.1, 38.9375) radius 1.6
  circle A1 centre (-9.1, 5.5625) radius 1.6
  point P0 (-4, 22.25)
  dimension "d9" = 3.2
extrude "Extrusion4" cut sketch "Sketch3" against normal through all
sketch "Sketch4" plane through (-24.7, 22.25, 4) normal (0, 1, 0) x (1, 0, 0)
  line L0 (0, 0) -> (0, 18.2) construction
  line L1 (38.4, 18.2) -> (0, 0) construction
  line L2 (0, 0) -> (0, 18.2) construction
  line L3 (0, 18.2) -> (38.4, 0) construction
  circle A0 centre (19.2, 9.1) radius 1.6
  point P0 (24.7, 4)
  dimension "d12" = 3.2
extrude "Extrusion5" cut sketch "Sketch4" against normal through all
sketch "Sketch5" plane through (0, 0, 4) normal (0, 0, 1) x (1, 0, 0)
  line L0 (13.7, 22.25) -> (-24.7, 22.25) projected
  line L1 (13.7, 22.25) -> (-24.7, 22.25)
  line L2 (-24.7, 22.25) -> (-24.7, 32.25)
  line L3 (-24.7, 32.25) -> (13.7, 32.25)
  line L4 (13.7, 32.25) -> (13.7, 22.25)
  line L5 (-24.7, 22.25) -> (-24.7, -22.25) projected
  line L6 (-24.7, 22.25) -> (-34.7, 22.25)
  line L7 (-34.7, 22.25) -> (-34.7, -22.25)
  line L8 (-34.7, -22.25) -> (-24.7, -22.25)
  line L9 (-24.7, -22.25) -> (-24.7, 22.25)
  line L10 (13.7, 27.25) -> (-24.7, 27.25) construction
  line L11 (-29.7, 22.25) -> (-29.7, -22.25) construction
  circle A0 centre (8.7, 27.25) radius 1.6
  circle A1 centre (-29.7, -17.25) radius 1.6
  circle A2 centre (-29.7, -7.25) radius 1.6
  line L12 (-24.7, 0) -> (-34.7, 0) construction
  circle A3 centre (-29.7, 17.25) radius 1.6
  circle A4 centre (-29.7, 7.25) radius 1.6
  line L13 (-5.5, 22.25) -> (-5.5, 32.25) construction
  circle A5 centre (-1.3, 27.25) radius 1.6652
  circle A6 centre (-19.7, 27.25) radius 1.6
  circle A7 centre (-9.7, 27.25) radius 1.6652
  line L14 (13.7, 22.25) -> (-24.7, 22.25) projected
  line L15 (-24.7, 22.25) -> (-24.7, -22.25) projected
  line L16 (-24.7, -22.25) -> (13.7, -22.25) projected
  line L17 (13.7, -22.25) -> (13.7, 22.25) projected
  circle A8 centre (-5.5, 0) radius 13.5 projected
  point P0 (0, 0)
  dimension "d15" = 10
  dimension "d16" = 10
  dimension "d17" = 3.2
  dimension "d18" = 5
  dimension "d19" = 3.2
  dimension "d20" = 5
  dimension "d21" = 10
  dimension "d22" = 3.2
  dimension "d23" = 10
extrude "Extrusion6" add sketch "Sketch5" along normal blind 2.5
properties part number "bau_holder"
